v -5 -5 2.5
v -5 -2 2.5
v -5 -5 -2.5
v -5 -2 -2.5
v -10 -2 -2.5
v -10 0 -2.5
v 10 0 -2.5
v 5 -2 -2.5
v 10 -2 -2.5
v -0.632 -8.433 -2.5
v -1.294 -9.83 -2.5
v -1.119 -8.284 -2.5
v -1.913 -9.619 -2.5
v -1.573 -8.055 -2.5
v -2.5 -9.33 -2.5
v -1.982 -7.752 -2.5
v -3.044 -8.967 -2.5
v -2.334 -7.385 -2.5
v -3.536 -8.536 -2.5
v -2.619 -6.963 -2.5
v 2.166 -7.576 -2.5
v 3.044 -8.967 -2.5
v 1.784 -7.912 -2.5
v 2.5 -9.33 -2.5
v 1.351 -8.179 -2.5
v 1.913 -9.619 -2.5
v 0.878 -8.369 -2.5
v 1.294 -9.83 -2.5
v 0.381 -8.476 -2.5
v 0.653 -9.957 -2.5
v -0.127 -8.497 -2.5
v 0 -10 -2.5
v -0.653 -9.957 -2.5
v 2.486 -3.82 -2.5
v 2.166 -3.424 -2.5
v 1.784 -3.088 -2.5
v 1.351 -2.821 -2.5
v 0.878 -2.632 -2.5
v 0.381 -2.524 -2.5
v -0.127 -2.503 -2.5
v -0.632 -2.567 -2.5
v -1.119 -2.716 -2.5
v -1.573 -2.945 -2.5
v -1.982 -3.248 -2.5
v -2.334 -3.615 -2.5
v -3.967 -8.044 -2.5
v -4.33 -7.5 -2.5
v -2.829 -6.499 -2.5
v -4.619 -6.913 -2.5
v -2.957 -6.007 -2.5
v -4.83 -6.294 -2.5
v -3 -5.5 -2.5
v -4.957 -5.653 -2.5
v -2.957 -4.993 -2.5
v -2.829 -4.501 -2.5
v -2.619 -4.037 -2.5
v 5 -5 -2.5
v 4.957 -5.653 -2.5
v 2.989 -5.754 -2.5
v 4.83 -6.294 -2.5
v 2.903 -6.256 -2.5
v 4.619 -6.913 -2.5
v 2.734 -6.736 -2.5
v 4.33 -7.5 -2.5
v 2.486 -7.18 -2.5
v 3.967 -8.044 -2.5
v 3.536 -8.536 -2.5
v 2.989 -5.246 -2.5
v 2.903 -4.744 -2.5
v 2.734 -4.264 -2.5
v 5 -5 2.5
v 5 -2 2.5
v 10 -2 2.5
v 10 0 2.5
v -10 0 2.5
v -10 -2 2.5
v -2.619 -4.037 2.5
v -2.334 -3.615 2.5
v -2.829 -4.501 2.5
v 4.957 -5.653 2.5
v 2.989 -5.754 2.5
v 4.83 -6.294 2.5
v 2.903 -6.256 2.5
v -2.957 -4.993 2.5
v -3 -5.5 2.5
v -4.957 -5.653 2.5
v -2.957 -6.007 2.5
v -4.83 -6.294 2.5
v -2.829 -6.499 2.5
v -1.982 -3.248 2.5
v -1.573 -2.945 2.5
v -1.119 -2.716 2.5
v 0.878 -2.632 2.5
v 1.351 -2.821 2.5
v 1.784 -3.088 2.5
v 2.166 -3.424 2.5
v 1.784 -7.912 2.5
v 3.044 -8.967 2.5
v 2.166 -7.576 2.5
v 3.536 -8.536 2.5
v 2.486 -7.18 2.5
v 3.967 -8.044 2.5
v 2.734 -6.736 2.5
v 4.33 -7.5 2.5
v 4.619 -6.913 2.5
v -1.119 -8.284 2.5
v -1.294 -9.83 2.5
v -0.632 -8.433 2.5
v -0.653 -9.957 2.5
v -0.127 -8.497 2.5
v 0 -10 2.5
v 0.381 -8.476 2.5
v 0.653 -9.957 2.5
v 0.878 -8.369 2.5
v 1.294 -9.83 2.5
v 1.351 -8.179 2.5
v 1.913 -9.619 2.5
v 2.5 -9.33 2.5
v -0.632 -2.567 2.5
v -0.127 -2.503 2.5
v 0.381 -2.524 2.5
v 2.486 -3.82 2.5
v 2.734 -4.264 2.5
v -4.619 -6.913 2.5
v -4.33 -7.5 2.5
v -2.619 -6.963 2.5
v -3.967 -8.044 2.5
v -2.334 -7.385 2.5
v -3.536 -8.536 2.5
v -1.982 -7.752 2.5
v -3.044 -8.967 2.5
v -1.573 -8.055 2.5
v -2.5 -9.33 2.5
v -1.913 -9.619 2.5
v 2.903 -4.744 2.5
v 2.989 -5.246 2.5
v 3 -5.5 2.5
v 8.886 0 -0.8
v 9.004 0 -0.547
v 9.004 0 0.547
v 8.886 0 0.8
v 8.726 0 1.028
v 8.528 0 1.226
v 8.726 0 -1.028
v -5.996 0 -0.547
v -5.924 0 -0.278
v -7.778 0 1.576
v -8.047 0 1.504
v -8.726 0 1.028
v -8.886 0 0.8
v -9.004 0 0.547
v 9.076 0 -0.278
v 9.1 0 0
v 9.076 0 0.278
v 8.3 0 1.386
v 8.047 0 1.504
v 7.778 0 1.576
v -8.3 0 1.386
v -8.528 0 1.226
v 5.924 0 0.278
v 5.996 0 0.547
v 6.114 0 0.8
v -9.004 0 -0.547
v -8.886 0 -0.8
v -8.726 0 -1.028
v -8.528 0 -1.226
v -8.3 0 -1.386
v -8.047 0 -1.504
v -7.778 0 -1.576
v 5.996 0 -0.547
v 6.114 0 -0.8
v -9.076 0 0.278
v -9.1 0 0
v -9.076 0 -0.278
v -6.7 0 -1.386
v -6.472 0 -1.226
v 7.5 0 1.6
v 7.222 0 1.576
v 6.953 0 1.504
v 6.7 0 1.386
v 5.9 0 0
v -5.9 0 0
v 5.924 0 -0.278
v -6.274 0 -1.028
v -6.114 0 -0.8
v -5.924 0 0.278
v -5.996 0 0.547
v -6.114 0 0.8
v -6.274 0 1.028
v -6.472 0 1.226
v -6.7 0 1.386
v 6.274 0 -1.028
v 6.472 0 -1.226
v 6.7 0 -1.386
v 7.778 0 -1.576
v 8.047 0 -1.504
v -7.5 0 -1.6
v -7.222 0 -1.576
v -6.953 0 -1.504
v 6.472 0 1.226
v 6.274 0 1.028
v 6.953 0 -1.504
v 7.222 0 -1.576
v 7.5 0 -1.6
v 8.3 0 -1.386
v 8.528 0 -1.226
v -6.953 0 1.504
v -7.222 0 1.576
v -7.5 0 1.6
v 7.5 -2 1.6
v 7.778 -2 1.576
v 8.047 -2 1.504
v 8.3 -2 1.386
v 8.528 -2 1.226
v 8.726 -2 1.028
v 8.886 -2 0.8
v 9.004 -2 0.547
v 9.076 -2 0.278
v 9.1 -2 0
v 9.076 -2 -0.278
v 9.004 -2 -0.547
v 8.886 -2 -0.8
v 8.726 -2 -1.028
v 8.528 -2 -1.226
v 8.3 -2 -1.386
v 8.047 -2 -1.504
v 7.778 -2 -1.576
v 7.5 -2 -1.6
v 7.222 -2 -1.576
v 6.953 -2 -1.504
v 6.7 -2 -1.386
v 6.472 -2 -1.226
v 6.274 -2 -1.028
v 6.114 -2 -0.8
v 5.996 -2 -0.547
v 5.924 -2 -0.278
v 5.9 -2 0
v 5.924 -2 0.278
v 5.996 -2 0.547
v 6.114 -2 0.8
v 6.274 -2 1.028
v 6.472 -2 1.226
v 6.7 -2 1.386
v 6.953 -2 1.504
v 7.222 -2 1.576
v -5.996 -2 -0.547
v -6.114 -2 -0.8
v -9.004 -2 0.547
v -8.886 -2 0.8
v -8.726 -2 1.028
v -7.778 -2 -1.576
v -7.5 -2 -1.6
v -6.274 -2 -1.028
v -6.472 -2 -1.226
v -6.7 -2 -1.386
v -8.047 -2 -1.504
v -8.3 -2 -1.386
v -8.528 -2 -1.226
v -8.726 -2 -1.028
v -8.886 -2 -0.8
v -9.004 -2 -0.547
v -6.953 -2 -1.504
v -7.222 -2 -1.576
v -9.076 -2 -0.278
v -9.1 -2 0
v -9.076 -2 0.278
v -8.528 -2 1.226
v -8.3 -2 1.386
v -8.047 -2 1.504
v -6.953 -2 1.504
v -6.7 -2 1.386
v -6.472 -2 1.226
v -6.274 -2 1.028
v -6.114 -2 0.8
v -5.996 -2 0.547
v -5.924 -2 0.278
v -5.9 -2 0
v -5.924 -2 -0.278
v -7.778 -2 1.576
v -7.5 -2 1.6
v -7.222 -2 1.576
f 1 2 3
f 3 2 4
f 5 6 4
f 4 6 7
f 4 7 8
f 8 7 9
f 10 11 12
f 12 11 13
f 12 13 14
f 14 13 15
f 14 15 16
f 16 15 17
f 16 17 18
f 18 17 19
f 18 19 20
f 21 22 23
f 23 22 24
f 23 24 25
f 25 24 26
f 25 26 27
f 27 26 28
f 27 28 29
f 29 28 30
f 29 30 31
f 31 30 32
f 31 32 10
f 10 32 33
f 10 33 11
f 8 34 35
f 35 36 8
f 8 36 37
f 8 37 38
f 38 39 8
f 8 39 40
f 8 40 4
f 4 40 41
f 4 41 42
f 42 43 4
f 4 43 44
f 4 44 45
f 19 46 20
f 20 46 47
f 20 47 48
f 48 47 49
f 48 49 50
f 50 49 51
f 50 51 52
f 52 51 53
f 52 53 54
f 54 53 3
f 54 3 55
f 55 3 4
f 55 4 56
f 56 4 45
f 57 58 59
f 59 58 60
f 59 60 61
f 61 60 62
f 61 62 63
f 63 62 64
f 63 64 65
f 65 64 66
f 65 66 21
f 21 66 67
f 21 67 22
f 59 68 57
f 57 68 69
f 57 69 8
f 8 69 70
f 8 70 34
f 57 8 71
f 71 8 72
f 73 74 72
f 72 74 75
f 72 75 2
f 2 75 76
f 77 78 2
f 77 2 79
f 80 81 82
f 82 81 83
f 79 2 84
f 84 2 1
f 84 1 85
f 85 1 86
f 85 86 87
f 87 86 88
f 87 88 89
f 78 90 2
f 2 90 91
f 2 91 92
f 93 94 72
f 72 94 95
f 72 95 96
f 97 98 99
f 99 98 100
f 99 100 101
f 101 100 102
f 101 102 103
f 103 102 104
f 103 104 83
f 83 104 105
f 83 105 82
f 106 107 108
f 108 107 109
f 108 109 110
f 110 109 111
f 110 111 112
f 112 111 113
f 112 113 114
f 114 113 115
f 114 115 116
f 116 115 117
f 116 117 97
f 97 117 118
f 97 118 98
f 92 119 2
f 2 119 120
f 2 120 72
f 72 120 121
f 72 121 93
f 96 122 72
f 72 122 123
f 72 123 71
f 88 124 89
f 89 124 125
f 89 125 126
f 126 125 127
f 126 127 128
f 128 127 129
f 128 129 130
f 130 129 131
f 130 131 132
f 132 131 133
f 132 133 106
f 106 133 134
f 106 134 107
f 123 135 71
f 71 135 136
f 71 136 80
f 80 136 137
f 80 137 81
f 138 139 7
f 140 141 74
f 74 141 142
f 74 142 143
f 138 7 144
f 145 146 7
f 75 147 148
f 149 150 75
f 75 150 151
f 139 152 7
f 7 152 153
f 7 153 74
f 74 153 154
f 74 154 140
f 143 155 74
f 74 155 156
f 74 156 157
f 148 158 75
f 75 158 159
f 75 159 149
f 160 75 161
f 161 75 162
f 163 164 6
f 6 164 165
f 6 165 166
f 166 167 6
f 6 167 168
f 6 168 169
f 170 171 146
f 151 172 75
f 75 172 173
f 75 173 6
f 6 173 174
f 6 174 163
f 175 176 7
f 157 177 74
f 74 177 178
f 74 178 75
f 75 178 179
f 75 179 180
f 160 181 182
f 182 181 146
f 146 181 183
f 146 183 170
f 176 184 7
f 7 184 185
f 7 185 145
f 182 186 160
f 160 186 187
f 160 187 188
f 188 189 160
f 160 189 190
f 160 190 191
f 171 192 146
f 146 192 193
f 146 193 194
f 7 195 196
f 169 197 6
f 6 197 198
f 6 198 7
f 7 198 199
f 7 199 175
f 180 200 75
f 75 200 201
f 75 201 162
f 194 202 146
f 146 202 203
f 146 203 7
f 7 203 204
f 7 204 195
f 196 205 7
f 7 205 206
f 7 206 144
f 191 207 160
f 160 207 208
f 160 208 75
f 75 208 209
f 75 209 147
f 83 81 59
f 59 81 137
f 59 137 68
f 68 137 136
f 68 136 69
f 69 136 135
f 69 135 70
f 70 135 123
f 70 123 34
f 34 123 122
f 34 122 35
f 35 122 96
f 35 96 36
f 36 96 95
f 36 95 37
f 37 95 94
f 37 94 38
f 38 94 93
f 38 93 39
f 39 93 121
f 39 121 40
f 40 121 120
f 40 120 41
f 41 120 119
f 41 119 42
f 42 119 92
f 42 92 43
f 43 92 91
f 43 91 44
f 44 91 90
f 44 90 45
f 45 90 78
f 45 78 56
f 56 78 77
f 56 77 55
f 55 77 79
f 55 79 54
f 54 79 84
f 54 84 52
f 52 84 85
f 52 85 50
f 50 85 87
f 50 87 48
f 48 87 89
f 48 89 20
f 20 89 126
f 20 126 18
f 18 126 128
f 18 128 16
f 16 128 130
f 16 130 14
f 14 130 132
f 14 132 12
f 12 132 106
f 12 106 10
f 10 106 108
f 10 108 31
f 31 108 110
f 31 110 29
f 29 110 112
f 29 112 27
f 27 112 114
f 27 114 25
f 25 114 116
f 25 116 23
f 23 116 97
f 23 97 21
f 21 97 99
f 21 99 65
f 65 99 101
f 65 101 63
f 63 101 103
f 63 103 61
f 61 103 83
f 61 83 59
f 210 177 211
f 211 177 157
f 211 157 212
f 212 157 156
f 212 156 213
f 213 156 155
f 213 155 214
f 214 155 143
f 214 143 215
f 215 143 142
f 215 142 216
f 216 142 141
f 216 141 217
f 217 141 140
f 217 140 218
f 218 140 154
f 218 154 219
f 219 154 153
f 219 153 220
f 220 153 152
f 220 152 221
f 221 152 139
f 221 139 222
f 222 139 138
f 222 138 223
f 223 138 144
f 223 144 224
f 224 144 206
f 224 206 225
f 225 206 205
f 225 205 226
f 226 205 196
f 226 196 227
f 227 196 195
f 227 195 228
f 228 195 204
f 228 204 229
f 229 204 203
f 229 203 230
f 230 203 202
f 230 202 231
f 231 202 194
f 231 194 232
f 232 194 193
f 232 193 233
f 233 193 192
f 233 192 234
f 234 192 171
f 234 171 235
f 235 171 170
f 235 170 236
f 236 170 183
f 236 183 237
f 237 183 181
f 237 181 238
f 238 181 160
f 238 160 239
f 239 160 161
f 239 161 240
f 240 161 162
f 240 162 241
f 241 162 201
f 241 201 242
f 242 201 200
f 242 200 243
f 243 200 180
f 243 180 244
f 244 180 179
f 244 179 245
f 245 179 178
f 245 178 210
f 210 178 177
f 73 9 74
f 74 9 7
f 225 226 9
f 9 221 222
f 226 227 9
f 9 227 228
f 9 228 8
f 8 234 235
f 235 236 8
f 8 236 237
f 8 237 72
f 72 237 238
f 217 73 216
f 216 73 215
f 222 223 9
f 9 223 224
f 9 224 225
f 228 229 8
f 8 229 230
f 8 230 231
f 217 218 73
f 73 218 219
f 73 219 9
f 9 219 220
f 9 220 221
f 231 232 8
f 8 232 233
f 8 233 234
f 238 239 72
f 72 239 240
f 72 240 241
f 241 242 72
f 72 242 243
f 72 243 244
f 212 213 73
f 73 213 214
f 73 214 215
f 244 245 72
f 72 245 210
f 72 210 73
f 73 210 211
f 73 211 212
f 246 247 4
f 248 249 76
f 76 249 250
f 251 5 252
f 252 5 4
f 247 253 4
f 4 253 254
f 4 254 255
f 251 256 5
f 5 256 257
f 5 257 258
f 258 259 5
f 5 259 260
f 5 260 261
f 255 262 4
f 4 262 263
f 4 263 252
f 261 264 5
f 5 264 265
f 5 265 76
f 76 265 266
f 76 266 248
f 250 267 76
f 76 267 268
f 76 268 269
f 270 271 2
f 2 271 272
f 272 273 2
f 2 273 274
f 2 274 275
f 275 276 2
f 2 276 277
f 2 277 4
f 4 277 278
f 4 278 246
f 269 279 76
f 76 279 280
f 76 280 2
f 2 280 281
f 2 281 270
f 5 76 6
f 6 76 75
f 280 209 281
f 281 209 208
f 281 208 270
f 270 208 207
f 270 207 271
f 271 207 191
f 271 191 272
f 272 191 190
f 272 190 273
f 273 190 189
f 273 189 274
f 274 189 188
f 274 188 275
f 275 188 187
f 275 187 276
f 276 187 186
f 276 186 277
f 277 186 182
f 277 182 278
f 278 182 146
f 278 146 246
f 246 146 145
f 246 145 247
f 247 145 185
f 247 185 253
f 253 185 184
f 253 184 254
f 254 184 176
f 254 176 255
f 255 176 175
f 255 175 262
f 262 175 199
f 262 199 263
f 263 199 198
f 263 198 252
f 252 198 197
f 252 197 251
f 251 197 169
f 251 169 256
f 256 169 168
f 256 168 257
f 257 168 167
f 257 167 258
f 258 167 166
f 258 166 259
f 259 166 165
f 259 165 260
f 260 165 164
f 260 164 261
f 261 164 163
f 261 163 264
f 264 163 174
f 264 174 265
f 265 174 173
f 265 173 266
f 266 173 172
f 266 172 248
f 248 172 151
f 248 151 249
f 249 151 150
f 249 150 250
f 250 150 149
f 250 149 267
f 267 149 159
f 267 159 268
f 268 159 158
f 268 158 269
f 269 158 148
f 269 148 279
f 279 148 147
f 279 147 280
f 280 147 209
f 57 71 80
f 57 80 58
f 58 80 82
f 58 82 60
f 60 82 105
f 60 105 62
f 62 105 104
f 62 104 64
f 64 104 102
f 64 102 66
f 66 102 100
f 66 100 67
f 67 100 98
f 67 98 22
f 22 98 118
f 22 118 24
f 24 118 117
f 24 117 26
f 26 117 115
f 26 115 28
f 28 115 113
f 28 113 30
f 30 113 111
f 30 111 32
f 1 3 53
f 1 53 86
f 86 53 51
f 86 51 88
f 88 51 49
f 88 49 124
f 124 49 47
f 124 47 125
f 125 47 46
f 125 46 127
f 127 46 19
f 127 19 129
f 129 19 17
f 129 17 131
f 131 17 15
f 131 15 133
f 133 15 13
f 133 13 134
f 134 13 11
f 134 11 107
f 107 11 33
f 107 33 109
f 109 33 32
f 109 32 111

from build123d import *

# Parameters (mm, degrees)
SKETCH1_W           = 10
SKETCH1_H           = 5
BOSS_EXTRUDE1_DEPTH = 10
CUT_EXTRUDE1_REACH  = 14.247
SKETCH2_R           = 3
SKETCH3_W           = 20
SKETCH3_H           = 5
SKETCH3_R           = 1.6
BOSS_EXTRUDE2_DEPTH = 2
FILLET1_R           = 5


with BuildPart() as part:
    # Sketch1 → Boss-Extrude1 (new body)
    with BuildSketch(Plane(origin=(0, 0, 0), x_dir=(1, 0, 0), z_dir=(0, 1, 0))):
        Rectangle(SKETCH1_W, SKETCH1_H)
    extrude(amount=-BOSS_EXTRUDE1_DEPTH)

    # Sketch2 → Cut-Extrude1 (cut, up to next)
    with BuildSketch(Plane(origin=(0, 0, -2.5), x_dir=(-1, 0, 0), z_dir=(0, 0, -1)), mode=Mode.PRIVATE) as cut_extrude1_sk1:
        with Locations((0, -5.5)):
            Circle(SKETCH2_R)
    cut_extrude1_tool1 = extrude(cut_extrude1_sk1.sketch, amount=-CUT_EXTRUDE1_REACH, mode=Mode.PRIVATE) & part.part
    add(cut_extrude1_tool1.solids().sort_by_distance((0, -5.5, -2.5))[0], mode=Mode.SUBTRACT)

    # Sketch3 → Boss-Extrude2 (add)
    with BuildSketch(Plane(origin=(0, 0, 0), x_dir=(1, 0, 0), z_dir=(0, 1, 0))):
        Rectangle(SKETCH3_W, SKETCH3_H)
        with Locations(Location((-7.5, 0, 0), (0, 0, 270))):
            Circle(SKETCH3_R, mode=Mode.SUBTRACT)
        with Locations(Location((7.5, 0, 0), (0, 0, 270))):
            Circle(SKETCH3_R, mode=Mode.SUBTRACT)
    extrude(amount=-BOSS_EXTRUDE2_DEPTH)

    # Fillet1
    fillet1_edges = [part.edges().sort_by_distance(p)[0] for p in [
        (-5, -10, 0),
        (5, -10, 0),
    ]]
    fillet(fillet1_edges, radius=FILLET1_R - 0.0001)  # a hair under: the kernel refuses the full size


solid = part.part
